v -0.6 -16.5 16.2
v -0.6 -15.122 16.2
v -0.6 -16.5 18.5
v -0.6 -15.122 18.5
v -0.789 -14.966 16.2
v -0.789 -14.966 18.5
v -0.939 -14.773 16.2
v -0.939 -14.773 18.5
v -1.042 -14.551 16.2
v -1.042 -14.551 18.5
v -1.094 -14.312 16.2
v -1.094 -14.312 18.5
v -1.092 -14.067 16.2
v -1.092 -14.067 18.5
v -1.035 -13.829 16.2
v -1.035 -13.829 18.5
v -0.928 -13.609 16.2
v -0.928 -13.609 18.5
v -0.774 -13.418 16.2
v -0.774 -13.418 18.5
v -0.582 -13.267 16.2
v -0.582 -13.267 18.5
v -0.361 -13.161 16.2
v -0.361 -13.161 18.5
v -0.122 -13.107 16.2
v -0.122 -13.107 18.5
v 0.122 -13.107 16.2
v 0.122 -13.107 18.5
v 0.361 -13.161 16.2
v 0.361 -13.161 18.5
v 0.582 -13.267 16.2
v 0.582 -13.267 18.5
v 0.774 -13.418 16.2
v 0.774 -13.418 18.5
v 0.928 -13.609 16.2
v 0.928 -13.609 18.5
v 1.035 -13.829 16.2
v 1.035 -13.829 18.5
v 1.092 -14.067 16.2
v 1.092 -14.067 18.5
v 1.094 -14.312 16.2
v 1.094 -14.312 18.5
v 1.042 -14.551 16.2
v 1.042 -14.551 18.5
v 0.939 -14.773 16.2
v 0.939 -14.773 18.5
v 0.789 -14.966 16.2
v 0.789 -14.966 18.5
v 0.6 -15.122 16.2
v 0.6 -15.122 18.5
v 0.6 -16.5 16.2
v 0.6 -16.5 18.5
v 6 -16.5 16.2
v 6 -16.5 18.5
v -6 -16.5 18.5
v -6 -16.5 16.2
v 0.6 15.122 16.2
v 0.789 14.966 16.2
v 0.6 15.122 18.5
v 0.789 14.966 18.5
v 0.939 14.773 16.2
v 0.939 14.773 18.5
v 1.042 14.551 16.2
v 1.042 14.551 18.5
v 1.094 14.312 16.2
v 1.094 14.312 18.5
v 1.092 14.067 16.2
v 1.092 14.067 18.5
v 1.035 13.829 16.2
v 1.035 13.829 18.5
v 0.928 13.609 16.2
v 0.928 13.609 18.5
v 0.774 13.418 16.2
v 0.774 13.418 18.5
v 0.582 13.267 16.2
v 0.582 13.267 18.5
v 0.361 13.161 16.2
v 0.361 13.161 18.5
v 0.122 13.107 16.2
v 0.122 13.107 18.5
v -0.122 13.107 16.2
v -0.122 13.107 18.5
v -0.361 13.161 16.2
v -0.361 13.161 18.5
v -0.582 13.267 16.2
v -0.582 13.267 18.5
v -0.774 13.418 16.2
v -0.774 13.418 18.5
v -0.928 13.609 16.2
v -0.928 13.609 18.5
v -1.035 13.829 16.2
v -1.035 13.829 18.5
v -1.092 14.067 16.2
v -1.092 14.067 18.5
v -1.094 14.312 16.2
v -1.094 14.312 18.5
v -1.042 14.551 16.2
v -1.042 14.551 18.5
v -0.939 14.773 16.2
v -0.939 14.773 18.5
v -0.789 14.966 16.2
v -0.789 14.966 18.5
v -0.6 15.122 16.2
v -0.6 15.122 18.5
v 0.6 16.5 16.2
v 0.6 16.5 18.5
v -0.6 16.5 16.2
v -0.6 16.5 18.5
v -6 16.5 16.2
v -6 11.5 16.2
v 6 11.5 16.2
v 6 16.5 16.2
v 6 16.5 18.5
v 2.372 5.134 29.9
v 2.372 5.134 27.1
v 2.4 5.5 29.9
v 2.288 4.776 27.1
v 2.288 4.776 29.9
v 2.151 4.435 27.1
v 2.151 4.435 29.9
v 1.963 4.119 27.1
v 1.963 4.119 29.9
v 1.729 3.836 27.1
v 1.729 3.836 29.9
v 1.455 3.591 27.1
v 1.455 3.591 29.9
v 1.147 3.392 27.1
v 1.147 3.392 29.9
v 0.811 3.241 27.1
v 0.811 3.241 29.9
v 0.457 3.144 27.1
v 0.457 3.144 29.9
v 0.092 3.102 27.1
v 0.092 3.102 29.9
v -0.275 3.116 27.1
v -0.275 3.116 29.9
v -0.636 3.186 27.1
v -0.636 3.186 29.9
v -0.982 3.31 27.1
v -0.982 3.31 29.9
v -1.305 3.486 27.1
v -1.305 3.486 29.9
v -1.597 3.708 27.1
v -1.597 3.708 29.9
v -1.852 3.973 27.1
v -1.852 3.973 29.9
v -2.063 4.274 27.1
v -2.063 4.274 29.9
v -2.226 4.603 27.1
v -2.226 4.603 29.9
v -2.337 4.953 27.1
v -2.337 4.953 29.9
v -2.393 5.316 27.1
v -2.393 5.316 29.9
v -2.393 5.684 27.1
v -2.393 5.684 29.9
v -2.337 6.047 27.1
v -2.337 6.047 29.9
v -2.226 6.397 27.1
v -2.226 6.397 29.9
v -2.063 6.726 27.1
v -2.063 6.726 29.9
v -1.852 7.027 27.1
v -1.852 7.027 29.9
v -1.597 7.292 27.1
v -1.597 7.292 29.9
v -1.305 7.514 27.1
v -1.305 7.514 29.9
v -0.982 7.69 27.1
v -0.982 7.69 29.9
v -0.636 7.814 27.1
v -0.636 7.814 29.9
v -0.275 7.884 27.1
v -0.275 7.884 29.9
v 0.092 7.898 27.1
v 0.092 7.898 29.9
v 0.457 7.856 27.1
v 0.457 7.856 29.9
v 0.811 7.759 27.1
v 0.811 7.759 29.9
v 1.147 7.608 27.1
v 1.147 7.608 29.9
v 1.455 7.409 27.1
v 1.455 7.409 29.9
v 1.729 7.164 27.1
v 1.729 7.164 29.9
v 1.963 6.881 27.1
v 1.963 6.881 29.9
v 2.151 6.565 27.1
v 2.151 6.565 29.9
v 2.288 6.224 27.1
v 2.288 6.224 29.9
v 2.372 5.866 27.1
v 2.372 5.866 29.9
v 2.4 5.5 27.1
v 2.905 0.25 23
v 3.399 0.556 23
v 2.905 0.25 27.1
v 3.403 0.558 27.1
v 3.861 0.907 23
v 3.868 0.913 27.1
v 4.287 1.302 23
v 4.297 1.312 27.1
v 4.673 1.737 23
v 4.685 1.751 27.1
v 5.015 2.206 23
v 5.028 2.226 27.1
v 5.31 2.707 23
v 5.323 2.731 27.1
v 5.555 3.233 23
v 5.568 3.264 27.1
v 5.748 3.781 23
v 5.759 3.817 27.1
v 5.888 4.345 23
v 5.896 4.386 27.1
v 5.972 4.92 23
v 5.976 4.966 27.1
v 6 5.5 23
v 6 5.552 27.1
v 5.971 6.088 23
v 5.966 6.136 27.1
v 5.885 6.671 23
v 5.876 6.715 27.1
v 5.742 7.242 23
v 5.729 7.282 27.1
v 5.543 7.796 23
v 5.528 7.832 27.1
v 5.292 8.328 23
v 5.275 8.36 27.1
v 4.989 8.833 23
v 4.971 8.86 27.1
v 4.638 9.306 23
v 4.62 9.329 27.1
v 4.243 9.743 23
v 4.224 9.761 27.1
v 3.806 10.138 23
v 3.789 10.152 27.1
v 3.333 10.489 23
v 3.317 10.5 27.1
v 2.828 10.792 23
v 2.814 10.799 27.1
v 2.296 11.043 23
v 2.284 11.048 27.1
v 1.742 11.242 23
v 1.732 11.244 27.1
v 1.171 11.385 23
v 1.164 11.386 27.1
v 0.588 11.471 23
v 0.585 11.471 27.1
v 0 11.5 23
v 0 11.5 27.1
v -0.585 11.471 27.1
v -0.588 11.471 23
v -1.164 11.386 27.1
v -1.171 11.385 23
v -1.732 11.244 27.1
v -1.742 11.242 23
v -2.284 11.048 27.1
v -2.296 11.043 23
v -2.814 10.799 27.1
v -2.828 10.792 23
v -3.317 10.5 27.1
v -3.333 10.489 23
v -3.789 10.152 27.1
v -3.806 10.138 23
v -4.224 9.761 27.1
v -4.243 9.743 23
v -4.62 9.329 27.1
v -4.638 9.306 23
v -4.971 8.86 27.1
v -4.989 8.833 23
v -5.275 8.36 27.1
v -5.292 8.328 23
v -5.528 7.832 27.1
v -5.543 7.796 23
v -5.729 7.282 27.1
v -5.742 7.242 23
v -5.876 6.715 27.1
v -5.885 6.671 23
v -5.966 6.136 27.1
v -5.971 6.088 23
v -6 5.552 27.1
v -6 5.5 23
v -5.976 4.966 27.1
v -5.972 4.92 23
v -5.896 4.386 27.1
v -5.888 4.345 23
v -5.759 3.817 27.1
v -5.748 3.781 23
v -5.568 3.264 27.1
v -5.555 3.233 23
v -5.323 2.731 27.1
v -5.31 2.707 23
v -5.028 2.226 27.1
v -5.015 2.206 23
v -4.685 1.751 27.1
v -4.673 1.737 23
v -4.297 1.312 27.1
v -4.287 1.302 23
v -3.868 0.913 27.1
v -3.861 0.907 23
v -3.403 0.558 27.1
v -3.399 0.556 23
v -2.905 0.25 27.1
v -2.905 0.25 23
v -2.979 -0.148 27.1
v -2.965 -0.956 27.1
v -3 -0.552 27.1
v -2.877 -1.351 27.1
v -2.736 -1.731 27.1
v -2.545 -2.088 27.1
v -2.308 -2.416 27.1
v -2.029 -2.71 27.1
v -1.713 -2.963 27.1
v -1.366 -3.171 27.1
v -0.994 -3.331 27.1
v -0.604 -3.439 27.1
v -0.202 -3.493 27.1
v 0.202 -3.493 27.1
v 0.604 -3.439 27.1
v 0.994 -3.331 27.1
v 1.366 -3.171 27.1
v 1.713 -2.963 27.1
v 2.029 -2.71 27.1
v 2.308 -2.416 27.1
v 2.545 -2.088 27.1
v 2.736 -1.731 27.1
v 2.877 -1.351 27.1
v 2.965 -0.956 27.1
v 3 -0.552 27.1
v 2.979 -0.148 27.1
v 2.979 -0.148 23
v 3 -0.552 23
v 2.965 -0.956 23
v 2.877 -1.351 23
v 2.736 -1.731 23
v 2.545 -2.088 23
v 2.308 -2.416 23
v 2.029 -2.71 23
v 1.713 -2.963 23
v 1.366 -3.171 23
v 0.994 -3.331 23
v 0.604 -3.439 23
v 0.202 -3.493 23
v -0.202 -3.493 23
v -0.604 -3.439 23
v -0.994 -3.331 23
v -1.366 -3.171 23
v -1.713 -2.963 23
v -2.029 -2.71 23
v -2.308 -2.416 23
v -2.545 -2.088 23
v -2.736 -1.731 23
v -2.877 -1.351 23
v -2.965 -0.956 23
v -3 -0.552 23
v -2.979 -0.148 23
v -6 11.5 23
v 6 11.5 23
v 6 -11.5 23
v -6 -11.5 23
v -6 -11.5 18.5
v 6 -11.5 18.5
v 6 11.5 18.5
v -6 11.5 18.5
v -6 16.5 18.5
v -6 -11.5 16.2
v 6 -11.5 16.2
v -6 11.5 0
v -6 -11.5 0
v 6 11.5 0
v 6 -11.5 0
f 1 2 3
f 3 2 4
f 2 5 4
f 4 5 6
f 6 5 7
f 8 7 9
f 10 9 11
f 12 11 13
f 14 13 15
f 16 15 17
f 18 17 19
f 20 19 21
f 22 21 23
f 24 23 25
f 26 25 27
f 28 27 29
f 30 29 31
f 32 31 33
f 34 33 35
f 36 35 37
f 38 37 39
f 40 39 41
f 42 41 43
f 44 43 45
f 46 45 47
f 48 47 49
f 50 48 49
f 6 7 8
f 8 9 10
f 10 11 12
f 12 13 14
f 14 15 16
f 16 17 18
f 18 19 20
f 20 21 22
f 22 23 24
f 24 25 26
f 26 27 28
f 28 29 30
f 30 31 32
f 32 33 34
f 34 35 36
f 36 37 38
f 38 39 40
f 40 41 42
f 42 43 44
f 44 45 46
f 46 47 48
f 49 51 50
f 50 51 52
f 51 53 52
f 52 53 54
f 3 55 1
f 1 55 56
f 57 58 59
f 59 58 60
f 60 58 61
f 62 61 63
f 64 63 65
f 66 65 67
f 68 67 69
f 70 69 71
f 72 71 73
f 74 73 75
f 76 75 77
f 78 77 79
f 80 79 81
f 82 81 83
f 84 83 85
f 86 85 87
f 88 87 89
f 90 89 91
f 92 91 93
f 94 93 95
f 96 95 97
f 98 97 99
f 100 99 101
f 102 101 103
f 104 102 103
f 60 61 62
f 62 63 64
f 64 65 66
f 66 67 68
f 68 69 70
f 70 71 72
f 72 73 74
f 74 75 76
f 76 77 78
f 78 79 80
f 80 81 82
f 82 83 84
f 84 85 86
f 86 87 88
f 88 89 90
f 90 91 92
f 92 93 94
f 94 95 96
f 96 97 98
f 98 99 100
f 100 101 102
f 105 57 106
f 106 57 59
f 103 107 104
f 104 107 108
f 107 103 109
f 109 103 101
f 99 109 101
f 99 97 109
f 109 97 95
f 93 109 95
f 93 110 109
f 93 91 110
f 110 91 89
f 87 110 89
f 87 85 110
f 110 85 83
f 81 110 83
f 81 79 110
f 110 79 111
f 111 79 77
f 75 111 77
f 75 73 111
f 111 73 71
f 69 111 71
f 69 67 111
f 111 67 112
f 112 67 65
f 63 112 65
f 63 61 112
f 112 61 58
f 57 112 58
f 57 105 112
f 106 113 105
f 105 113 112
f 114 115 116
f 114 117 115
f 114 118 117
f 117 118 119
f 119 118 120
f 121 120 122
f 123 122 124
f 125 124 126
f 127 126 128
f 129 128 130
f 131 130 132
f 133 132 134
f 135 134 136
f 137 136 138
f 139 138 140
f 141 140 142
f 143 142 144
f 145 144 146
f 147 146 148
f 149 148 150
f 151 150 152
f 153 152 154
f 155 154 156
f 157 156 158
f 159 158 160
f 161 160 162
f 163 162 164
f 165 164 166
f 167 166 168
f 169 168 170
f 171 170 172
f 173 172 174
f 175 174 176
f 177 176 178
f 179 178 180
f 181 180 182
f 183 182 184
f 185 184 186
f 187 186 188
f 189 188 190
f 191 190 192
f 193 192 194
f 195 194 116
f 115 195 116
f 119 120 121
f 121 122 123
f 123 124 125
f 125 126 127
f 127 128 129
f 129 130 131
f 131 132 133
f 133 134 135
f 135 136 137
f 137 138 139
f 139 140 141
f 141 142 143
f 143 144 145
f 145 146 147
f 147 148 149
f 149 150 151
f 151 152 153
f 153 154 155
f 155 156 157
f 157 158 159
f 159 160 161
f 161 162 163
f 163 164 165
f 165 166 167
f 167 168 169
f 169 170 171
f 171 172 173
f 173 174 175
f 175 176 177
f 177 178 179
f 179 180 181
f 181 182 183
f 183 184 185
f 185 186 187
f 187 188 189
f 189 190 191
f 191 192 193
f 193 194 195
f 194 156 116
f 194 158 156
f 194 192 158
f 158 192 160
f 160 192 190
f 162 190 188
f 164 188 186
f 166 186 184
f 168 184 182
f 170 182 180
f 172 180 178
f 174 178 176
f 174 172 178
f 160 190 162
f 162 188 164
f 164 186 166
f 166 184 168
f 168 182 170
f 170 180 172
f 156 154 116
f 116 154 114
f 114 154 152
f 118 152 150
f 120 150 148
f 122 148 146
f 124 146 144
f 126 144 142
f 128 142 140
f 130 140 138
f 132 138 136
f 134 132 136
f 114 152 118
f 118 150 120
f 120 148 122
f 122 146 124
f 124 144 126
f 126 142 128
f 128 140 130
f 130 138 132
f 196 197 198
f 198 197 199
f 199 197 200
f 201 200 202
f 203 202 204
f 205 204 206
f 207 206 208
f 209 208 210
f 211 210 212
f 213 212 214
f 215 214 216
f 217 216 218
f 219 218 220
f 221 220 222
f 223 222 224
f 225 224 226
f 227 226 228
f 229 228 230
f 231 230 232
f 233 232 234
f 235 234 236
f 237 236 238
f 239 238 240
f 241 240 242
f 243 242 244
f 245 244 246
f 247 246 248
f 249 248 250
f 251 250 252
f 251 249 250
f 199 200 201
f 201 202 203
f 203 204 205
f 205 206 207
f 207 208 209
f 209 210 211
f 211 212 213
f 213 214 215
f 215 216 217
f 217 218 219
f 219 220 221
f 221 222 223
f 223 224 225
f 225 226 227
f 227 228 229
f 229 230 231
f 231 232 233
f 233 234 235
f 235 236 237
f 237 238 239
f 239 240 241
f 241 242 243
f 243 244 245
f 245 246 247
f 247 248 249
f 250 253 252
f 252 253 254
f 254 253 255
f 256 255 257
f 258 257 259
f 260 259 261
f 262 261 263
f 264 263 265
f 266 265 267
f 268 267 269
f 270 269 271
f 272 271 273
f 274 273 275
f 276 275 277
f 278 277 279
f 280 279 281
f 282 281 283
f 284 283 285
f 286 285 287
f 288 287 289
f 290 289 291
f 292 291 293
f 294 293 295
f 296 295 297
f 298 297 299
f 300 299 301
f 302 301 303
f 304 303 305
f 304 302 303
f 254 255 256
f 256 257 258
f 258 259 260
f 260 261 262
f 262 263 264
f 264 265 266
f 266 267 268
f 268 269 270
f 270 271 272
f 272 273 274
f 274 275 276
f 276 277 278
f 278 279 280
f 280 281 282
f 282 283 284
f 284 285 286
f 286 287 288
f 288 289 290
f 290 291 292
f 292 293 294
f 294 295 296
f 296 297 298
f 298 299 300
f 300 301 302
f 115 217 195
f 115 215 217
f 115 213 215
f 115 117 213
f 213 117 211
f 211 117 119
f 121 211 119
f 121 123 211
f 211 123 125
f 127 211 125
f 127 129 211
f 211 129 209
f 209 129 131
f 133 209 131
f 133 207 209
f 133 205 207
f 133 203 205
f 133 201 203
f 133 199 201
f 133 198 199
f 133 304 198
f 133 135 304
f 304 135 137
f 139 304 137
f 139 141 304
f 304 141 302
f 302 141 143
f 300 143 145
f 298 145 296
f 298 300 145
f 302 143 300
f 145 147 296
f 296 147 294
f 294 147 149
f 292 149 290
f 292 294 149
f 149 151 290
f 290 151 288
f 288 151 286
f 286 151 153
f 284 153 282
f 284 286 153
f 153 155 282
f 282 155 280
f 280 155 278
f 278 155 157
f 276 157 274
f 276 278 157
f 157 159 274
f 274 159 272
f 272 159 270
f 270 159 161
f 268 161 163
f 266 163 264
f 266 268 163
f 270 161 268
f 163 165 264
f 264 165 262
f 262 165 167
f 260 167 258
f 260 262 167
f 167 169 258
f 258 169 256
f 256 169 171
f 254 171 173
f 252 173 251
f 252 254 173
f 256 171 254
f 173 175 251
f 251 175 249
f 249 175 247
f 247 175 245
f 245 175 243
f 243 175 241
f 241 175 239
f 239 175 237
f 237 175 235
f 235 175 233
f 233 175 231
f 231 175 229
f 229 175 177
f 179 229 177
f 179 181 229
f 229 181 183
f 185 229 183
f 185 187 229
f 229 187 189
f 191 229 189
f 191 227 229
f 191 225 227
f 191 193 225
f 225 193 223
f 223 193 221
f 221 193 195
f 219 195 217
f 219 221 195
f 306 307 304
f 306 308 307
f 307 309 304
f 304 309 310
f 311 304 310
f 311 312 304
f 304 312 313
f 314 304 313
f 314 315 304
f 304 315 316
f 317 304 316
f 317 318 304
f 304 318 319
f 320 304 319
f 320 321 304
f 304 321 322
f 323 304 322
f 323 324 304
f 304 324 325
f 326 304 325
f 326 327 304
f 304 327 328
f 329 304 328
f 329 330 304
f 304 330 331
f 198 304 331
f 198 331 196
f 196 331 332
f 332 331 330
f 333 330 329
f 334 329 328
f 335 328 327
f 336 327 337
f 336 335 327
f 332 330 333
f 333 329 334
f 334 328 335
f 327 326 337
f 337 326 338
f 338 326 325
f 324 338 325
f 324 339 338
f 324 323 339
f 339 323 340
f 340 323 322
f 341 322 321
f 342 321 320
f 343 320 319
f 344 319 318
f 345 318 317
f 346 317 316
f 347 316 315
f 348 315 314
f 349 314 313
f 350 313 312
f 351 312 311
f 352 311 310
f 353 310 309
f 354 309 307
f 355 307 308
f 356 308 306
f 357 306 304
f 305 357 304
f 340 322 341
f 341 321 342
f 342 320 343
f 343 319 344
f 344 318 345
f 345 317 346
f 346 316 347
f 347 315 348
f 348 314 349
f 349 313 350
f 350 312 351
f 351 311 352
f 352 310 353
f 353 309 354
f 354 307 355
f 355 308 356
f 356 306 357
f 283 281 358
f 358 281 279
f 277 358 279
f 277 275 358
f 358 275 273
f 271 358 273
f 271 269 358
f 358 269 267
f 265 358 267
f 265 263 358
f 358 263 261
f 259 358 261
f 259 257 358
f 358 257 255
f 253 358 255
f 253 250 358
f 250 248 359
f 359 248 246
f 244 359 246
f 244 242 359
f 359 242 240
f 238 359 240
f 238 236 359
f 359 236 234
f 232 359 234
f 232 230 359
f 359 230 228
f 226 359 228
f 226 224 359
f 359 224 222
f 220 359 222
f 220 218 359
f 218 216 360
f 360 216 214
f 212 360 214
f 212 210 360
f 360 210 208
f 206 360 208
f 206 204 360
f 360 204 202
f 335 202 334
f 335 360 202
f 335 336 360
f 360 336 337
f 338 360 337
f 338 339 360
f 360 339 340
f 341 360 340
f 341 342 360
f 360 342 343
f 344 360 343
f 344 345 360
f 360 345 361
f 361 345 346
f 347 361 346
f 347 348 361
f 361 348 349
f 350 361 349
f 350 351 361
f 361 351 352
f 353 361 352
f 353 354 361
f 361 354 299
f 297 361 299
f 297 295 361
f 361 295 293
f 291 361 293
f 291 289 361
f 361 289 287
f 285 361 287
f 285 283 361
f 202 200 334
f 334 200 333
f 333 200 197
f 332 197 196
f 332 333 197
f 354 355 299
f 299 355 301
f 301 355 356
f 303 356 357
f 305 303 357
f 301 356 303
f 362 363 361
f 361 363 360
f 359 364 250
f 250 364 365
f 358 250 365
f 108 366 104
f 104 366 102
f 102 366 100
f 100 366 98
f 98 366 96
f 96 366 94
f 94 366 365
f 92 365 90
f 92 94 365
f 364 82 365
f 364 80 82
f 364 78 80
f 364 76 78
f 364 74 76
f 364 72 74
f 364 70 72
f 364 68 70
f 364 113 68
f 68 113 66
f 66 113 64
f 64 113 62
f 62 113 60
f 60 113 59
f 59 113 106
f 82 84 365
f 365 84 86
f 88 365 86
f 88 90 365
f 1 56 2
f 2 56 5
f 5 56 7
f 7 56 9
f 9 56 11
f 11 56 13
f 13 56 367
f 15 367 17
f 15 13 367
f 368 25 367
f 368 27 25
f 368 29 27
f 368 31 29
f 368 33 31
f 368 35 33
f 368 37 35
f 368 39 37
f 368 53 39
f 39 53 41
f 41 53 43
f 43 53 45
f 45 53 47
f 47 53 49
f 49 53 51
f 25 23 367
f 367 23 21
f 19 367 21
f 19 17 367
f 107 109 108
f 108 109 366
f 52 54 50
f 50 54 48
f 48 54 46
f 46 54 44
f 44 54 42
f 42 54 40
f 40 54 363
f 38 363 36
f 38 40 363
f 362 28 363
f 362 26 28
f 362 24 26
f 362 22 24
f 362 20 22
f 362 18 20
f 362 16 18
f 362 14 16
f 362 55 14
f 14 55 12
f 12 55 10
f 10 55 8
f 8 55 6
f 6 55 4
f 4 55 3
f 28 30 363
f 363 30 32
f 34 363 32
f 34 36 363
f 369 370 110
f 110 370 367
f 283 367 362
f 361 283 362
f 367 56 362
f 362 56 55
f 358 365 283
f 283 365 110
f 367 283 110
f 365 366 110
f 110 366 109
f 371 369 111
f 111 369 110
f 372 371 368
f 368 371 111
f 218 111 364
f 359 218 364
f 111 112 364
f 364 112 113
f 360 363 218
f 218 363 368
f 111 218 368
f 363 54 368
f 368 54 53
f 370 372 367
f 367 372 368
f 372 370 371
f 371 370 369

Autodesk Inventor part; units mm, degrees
ref_plane "YZ Plane" through (0, 0, 0) normal (1, 0, 0) x (0, 1, 0)
ref_plane "XZ Plane" through (0, 0, 0) normal (0, 1, 0) x (-1, 0, 0)
ref_plane "XY Plane" through (0, 0, 0) normal (0, 0, 1) x (1, 0, 0)
sketch "Skizze1" plane through (0, 0, 0) normal (0, 0, 1) x (1, 0, 0)
  line L0 (0, 16.1) -> (0, -16.1) projected
  line L1 (-8.4, 0) -> (8.4, 0) projected
  line L2 (-6, -11.5) -> (6, -11.5)
  line L3 (6, -11.5) -> (6, 11.5)
  line L4 (6, 11.5) -> (-6, 11.5)
  line L5 (-6, 11.5) -> (-6, -11.5)
  line L6 (-6, -11.5) -> (6, 11.5) construction
  line L7 (6, -11.5) -> (-6, 11.5) construction
  point P0 (0, 0)
  dimension "d0" = 12
  dimension "d1" = 23
extrude "Extrusion1" add sketch "Skizze1" along normal blind 16.2
sketch "Skizze2" plane through (0, 0, 16.2) normal (0, 0, 1) x (1, 0, 0)
  line L0 (-6, -11.5) -> (-6, 11.5) projected
  line L1 (-6, 11.5) -> (6, 11.5) projected
  line L2 (6, 11.5) -> (6, -11.5) projected
  line L3 (6, -11.5) -> (-6, -11.5) projected
  line L4 (6, 11.5) -> (-6, 11.5)
  line L5 (-6, 11.5) -> (-6, 16.5)
  line L6 (-6, 16.5) -> (6, 16.5)
  line L7 (6, 16.5) -> (6, 11.5)
  line L8 (-6, -11.5) -> (6, -11.5)
  line L9 (6, -11.5) -> (6, -16.5)
  line L10 (6, -16.5) -> (-6, -16.5)
  line L11 (-6, -16.5) -> (-6, -11.5)
  line L12 (-6, 11.5) -> (-6, -11.5) projected
  point P0 (0, 0)
  dimension "d4" = 5
  dimension "d5" = 5
extrude "Extrusion2" add sketch "Skizze2" along normal blind 2.3
sketch "Skizze3" plane through (0, 0, 18.5) normal (0, 0, 1) x (1, 0, 0)
  line L0 (6, -16.5) -> (-6, -16.5) projected
  line L1 (-6, -16.5) -> (-6, 16.5) projected
  line L2 (-6, 16.5) -> (6, 16.5) projected
  line L3 (6, 16.5) -> (6, -16.5) projected
  line L4 (-6, -11.5) -> (6, -11.5)
  line L5 (6, -11.5) -> (6, 11.5)
  line L6 (6, 11.5) -> (-6, 11.5)
  line L7 (-6, 11.5) -> (-6, -11.5)
  line L8 (-6, -11.5) -> (6, 11.5) construction
  line L9 (6, -11.5) -> (-6, 11.5) construction
  point P0 (0, 0)
  dimension "d8" = 11.5
extrude "Extrusion3" add sketch "Skizze3" along normal blind 4.5 contours L4 L1 L6 L3
sketch "Skizze4" plane through (0, 0, 23) normal (0, 0, 1) x (1, 0, 0)
  line L0 (-6, 11.5) -> (6, 11.5) projected
  line L1 (6, 11.5) -> (6, -11.5) projected
  line L2 (6, -11.5) -> (-6, -11.5) projected
  line L3 (-6, -11.5) -> (-6, 11.5) projected
  line L4 (6, 16.5) -> (-6, 16.5) projected
  line L5 (-6, 16.5) -> (-6, 11.5) projected
  line L6 (6, 11.5) -> (6, 16.5) projected
  line L7 (6, -16.5) -> (6, -11.5) projected
  line L8 (-6, -16.5) -> (6, -16.5) projected
  line L9 (-6, -11.5) -> (-6, -16.5) projected
  line L10 (-8.4, 0) -> (8.4, 0) projected
  line L11 (0, 23.1) -> (0, -23.1) projected
  circle A0 centre (0, 5.5) radius 6
  circle A1 centre (0, -0.5) radius 3
  point P0 (0, 0)
  dimension "d11" = 11
  dimension "d12" = 12
  dimension "d13" = 17
  dimension "d14" = 6
extrude "Extrusion4" add sketch "Skizze4" along normal blind 4.1 contours A0 A1 L11 | L11 A1 A0 | A1 A0 L10 L11 | L11 L10 A0 A1 | A0 L10 A1 | L11 A0 L10 | L10 A0 L11 | A1 L10 A0 | L10 A0 L11 A1 | L10 A1 L11 A0
sketch "Skizze5" plane through (0, 0, 27.1) normal (0, 0, 1) x (1, 0, 0)
  arc A0 (2.9047, 0.25) -> (-2.9047, 0.25) centre (0, 5.5) ccw projected
  arc A1 (-2.9047, 0.25) -> (2.9047, 0.25) centre (0, -0.5) ccw projected
  circle A2 centre (0, 5.5) radius 2.4
  point P0 (0, 0)
  dimension "d17" = 4.8
extrude "Extrusion5" add sketch "Skizze5" along normal blind 2.8 contours A2
sketch "Skizze6" plane through (0, 0, 18.5) normal (0, 0, 1) x (1, 0, 0)
  line L0 (6, -16.5) -> (-6, -16.5) projected
  line L1 (-6, -16.5) -> (-6, -11.5) projected
  line L2 (6, -11.5) -> (-6, -11.5) projected
  line L3 (6, 11.5) -> (6, -11.5) projected
  line L4 (-6, 11.5) -> (6, 11.5) projected
  line L5 (-6, 11.5) -> (-6, 16.5) projected
  line L6 (-6, 16.5) -> (6, 16.5) projected
  line L7 (6, 16.5) -> (6, 11.5) projected
  line L8 (6, -11.5) -> (6, -16.5) projected
  line L9 (-6, -11.5) -> (-6, 11.5) projected
  line L10 (0, 23.1) -> (0, -23.1) projected
  circle A0 centre (0, 14.2) radius 1.1
  line L11 (6, 16.5) -> (-6, 16.5) projected
  line L12 (0.6, 14.1) -> (-0.6, 14.1)
  line L13 (-0.6, 14.1) -> (-0.6, 16.5)
  line L14 (-0.6, 16.5) -> (0.6, 16.5)
  line L15 (0.6, 16.5) -> (0.6, 14.1)
  line L16 (0.6, 14.1) -> (-0.6, 16.5) construction
  line L17 (-0.6, 14.1) -> (0.6, 16.5) construction
  point P0 (0, 0)
  point P1 (0, 15.3)
  dimension "d21" = 2.2
  dimension "d20" = 2.3
  dimension "d22" = 1.2
extrude "Extrusion6" cut sketch "Skizze6" against normal blind 2.8 contours A0 L13 L12 L10 | L10 L12 L15 A0 | L15 A0 L10 L6 | L12 L13 A0 L10 | L10 A0 L15 L12 | L13 L6 L10 A0
mirror "Spiegeln1" about plane through (0, 0, 0) normal (0, 1, 0) of "Extrusion6"
properties part number "Mikroservo" material "ABS-Kunststoff"
